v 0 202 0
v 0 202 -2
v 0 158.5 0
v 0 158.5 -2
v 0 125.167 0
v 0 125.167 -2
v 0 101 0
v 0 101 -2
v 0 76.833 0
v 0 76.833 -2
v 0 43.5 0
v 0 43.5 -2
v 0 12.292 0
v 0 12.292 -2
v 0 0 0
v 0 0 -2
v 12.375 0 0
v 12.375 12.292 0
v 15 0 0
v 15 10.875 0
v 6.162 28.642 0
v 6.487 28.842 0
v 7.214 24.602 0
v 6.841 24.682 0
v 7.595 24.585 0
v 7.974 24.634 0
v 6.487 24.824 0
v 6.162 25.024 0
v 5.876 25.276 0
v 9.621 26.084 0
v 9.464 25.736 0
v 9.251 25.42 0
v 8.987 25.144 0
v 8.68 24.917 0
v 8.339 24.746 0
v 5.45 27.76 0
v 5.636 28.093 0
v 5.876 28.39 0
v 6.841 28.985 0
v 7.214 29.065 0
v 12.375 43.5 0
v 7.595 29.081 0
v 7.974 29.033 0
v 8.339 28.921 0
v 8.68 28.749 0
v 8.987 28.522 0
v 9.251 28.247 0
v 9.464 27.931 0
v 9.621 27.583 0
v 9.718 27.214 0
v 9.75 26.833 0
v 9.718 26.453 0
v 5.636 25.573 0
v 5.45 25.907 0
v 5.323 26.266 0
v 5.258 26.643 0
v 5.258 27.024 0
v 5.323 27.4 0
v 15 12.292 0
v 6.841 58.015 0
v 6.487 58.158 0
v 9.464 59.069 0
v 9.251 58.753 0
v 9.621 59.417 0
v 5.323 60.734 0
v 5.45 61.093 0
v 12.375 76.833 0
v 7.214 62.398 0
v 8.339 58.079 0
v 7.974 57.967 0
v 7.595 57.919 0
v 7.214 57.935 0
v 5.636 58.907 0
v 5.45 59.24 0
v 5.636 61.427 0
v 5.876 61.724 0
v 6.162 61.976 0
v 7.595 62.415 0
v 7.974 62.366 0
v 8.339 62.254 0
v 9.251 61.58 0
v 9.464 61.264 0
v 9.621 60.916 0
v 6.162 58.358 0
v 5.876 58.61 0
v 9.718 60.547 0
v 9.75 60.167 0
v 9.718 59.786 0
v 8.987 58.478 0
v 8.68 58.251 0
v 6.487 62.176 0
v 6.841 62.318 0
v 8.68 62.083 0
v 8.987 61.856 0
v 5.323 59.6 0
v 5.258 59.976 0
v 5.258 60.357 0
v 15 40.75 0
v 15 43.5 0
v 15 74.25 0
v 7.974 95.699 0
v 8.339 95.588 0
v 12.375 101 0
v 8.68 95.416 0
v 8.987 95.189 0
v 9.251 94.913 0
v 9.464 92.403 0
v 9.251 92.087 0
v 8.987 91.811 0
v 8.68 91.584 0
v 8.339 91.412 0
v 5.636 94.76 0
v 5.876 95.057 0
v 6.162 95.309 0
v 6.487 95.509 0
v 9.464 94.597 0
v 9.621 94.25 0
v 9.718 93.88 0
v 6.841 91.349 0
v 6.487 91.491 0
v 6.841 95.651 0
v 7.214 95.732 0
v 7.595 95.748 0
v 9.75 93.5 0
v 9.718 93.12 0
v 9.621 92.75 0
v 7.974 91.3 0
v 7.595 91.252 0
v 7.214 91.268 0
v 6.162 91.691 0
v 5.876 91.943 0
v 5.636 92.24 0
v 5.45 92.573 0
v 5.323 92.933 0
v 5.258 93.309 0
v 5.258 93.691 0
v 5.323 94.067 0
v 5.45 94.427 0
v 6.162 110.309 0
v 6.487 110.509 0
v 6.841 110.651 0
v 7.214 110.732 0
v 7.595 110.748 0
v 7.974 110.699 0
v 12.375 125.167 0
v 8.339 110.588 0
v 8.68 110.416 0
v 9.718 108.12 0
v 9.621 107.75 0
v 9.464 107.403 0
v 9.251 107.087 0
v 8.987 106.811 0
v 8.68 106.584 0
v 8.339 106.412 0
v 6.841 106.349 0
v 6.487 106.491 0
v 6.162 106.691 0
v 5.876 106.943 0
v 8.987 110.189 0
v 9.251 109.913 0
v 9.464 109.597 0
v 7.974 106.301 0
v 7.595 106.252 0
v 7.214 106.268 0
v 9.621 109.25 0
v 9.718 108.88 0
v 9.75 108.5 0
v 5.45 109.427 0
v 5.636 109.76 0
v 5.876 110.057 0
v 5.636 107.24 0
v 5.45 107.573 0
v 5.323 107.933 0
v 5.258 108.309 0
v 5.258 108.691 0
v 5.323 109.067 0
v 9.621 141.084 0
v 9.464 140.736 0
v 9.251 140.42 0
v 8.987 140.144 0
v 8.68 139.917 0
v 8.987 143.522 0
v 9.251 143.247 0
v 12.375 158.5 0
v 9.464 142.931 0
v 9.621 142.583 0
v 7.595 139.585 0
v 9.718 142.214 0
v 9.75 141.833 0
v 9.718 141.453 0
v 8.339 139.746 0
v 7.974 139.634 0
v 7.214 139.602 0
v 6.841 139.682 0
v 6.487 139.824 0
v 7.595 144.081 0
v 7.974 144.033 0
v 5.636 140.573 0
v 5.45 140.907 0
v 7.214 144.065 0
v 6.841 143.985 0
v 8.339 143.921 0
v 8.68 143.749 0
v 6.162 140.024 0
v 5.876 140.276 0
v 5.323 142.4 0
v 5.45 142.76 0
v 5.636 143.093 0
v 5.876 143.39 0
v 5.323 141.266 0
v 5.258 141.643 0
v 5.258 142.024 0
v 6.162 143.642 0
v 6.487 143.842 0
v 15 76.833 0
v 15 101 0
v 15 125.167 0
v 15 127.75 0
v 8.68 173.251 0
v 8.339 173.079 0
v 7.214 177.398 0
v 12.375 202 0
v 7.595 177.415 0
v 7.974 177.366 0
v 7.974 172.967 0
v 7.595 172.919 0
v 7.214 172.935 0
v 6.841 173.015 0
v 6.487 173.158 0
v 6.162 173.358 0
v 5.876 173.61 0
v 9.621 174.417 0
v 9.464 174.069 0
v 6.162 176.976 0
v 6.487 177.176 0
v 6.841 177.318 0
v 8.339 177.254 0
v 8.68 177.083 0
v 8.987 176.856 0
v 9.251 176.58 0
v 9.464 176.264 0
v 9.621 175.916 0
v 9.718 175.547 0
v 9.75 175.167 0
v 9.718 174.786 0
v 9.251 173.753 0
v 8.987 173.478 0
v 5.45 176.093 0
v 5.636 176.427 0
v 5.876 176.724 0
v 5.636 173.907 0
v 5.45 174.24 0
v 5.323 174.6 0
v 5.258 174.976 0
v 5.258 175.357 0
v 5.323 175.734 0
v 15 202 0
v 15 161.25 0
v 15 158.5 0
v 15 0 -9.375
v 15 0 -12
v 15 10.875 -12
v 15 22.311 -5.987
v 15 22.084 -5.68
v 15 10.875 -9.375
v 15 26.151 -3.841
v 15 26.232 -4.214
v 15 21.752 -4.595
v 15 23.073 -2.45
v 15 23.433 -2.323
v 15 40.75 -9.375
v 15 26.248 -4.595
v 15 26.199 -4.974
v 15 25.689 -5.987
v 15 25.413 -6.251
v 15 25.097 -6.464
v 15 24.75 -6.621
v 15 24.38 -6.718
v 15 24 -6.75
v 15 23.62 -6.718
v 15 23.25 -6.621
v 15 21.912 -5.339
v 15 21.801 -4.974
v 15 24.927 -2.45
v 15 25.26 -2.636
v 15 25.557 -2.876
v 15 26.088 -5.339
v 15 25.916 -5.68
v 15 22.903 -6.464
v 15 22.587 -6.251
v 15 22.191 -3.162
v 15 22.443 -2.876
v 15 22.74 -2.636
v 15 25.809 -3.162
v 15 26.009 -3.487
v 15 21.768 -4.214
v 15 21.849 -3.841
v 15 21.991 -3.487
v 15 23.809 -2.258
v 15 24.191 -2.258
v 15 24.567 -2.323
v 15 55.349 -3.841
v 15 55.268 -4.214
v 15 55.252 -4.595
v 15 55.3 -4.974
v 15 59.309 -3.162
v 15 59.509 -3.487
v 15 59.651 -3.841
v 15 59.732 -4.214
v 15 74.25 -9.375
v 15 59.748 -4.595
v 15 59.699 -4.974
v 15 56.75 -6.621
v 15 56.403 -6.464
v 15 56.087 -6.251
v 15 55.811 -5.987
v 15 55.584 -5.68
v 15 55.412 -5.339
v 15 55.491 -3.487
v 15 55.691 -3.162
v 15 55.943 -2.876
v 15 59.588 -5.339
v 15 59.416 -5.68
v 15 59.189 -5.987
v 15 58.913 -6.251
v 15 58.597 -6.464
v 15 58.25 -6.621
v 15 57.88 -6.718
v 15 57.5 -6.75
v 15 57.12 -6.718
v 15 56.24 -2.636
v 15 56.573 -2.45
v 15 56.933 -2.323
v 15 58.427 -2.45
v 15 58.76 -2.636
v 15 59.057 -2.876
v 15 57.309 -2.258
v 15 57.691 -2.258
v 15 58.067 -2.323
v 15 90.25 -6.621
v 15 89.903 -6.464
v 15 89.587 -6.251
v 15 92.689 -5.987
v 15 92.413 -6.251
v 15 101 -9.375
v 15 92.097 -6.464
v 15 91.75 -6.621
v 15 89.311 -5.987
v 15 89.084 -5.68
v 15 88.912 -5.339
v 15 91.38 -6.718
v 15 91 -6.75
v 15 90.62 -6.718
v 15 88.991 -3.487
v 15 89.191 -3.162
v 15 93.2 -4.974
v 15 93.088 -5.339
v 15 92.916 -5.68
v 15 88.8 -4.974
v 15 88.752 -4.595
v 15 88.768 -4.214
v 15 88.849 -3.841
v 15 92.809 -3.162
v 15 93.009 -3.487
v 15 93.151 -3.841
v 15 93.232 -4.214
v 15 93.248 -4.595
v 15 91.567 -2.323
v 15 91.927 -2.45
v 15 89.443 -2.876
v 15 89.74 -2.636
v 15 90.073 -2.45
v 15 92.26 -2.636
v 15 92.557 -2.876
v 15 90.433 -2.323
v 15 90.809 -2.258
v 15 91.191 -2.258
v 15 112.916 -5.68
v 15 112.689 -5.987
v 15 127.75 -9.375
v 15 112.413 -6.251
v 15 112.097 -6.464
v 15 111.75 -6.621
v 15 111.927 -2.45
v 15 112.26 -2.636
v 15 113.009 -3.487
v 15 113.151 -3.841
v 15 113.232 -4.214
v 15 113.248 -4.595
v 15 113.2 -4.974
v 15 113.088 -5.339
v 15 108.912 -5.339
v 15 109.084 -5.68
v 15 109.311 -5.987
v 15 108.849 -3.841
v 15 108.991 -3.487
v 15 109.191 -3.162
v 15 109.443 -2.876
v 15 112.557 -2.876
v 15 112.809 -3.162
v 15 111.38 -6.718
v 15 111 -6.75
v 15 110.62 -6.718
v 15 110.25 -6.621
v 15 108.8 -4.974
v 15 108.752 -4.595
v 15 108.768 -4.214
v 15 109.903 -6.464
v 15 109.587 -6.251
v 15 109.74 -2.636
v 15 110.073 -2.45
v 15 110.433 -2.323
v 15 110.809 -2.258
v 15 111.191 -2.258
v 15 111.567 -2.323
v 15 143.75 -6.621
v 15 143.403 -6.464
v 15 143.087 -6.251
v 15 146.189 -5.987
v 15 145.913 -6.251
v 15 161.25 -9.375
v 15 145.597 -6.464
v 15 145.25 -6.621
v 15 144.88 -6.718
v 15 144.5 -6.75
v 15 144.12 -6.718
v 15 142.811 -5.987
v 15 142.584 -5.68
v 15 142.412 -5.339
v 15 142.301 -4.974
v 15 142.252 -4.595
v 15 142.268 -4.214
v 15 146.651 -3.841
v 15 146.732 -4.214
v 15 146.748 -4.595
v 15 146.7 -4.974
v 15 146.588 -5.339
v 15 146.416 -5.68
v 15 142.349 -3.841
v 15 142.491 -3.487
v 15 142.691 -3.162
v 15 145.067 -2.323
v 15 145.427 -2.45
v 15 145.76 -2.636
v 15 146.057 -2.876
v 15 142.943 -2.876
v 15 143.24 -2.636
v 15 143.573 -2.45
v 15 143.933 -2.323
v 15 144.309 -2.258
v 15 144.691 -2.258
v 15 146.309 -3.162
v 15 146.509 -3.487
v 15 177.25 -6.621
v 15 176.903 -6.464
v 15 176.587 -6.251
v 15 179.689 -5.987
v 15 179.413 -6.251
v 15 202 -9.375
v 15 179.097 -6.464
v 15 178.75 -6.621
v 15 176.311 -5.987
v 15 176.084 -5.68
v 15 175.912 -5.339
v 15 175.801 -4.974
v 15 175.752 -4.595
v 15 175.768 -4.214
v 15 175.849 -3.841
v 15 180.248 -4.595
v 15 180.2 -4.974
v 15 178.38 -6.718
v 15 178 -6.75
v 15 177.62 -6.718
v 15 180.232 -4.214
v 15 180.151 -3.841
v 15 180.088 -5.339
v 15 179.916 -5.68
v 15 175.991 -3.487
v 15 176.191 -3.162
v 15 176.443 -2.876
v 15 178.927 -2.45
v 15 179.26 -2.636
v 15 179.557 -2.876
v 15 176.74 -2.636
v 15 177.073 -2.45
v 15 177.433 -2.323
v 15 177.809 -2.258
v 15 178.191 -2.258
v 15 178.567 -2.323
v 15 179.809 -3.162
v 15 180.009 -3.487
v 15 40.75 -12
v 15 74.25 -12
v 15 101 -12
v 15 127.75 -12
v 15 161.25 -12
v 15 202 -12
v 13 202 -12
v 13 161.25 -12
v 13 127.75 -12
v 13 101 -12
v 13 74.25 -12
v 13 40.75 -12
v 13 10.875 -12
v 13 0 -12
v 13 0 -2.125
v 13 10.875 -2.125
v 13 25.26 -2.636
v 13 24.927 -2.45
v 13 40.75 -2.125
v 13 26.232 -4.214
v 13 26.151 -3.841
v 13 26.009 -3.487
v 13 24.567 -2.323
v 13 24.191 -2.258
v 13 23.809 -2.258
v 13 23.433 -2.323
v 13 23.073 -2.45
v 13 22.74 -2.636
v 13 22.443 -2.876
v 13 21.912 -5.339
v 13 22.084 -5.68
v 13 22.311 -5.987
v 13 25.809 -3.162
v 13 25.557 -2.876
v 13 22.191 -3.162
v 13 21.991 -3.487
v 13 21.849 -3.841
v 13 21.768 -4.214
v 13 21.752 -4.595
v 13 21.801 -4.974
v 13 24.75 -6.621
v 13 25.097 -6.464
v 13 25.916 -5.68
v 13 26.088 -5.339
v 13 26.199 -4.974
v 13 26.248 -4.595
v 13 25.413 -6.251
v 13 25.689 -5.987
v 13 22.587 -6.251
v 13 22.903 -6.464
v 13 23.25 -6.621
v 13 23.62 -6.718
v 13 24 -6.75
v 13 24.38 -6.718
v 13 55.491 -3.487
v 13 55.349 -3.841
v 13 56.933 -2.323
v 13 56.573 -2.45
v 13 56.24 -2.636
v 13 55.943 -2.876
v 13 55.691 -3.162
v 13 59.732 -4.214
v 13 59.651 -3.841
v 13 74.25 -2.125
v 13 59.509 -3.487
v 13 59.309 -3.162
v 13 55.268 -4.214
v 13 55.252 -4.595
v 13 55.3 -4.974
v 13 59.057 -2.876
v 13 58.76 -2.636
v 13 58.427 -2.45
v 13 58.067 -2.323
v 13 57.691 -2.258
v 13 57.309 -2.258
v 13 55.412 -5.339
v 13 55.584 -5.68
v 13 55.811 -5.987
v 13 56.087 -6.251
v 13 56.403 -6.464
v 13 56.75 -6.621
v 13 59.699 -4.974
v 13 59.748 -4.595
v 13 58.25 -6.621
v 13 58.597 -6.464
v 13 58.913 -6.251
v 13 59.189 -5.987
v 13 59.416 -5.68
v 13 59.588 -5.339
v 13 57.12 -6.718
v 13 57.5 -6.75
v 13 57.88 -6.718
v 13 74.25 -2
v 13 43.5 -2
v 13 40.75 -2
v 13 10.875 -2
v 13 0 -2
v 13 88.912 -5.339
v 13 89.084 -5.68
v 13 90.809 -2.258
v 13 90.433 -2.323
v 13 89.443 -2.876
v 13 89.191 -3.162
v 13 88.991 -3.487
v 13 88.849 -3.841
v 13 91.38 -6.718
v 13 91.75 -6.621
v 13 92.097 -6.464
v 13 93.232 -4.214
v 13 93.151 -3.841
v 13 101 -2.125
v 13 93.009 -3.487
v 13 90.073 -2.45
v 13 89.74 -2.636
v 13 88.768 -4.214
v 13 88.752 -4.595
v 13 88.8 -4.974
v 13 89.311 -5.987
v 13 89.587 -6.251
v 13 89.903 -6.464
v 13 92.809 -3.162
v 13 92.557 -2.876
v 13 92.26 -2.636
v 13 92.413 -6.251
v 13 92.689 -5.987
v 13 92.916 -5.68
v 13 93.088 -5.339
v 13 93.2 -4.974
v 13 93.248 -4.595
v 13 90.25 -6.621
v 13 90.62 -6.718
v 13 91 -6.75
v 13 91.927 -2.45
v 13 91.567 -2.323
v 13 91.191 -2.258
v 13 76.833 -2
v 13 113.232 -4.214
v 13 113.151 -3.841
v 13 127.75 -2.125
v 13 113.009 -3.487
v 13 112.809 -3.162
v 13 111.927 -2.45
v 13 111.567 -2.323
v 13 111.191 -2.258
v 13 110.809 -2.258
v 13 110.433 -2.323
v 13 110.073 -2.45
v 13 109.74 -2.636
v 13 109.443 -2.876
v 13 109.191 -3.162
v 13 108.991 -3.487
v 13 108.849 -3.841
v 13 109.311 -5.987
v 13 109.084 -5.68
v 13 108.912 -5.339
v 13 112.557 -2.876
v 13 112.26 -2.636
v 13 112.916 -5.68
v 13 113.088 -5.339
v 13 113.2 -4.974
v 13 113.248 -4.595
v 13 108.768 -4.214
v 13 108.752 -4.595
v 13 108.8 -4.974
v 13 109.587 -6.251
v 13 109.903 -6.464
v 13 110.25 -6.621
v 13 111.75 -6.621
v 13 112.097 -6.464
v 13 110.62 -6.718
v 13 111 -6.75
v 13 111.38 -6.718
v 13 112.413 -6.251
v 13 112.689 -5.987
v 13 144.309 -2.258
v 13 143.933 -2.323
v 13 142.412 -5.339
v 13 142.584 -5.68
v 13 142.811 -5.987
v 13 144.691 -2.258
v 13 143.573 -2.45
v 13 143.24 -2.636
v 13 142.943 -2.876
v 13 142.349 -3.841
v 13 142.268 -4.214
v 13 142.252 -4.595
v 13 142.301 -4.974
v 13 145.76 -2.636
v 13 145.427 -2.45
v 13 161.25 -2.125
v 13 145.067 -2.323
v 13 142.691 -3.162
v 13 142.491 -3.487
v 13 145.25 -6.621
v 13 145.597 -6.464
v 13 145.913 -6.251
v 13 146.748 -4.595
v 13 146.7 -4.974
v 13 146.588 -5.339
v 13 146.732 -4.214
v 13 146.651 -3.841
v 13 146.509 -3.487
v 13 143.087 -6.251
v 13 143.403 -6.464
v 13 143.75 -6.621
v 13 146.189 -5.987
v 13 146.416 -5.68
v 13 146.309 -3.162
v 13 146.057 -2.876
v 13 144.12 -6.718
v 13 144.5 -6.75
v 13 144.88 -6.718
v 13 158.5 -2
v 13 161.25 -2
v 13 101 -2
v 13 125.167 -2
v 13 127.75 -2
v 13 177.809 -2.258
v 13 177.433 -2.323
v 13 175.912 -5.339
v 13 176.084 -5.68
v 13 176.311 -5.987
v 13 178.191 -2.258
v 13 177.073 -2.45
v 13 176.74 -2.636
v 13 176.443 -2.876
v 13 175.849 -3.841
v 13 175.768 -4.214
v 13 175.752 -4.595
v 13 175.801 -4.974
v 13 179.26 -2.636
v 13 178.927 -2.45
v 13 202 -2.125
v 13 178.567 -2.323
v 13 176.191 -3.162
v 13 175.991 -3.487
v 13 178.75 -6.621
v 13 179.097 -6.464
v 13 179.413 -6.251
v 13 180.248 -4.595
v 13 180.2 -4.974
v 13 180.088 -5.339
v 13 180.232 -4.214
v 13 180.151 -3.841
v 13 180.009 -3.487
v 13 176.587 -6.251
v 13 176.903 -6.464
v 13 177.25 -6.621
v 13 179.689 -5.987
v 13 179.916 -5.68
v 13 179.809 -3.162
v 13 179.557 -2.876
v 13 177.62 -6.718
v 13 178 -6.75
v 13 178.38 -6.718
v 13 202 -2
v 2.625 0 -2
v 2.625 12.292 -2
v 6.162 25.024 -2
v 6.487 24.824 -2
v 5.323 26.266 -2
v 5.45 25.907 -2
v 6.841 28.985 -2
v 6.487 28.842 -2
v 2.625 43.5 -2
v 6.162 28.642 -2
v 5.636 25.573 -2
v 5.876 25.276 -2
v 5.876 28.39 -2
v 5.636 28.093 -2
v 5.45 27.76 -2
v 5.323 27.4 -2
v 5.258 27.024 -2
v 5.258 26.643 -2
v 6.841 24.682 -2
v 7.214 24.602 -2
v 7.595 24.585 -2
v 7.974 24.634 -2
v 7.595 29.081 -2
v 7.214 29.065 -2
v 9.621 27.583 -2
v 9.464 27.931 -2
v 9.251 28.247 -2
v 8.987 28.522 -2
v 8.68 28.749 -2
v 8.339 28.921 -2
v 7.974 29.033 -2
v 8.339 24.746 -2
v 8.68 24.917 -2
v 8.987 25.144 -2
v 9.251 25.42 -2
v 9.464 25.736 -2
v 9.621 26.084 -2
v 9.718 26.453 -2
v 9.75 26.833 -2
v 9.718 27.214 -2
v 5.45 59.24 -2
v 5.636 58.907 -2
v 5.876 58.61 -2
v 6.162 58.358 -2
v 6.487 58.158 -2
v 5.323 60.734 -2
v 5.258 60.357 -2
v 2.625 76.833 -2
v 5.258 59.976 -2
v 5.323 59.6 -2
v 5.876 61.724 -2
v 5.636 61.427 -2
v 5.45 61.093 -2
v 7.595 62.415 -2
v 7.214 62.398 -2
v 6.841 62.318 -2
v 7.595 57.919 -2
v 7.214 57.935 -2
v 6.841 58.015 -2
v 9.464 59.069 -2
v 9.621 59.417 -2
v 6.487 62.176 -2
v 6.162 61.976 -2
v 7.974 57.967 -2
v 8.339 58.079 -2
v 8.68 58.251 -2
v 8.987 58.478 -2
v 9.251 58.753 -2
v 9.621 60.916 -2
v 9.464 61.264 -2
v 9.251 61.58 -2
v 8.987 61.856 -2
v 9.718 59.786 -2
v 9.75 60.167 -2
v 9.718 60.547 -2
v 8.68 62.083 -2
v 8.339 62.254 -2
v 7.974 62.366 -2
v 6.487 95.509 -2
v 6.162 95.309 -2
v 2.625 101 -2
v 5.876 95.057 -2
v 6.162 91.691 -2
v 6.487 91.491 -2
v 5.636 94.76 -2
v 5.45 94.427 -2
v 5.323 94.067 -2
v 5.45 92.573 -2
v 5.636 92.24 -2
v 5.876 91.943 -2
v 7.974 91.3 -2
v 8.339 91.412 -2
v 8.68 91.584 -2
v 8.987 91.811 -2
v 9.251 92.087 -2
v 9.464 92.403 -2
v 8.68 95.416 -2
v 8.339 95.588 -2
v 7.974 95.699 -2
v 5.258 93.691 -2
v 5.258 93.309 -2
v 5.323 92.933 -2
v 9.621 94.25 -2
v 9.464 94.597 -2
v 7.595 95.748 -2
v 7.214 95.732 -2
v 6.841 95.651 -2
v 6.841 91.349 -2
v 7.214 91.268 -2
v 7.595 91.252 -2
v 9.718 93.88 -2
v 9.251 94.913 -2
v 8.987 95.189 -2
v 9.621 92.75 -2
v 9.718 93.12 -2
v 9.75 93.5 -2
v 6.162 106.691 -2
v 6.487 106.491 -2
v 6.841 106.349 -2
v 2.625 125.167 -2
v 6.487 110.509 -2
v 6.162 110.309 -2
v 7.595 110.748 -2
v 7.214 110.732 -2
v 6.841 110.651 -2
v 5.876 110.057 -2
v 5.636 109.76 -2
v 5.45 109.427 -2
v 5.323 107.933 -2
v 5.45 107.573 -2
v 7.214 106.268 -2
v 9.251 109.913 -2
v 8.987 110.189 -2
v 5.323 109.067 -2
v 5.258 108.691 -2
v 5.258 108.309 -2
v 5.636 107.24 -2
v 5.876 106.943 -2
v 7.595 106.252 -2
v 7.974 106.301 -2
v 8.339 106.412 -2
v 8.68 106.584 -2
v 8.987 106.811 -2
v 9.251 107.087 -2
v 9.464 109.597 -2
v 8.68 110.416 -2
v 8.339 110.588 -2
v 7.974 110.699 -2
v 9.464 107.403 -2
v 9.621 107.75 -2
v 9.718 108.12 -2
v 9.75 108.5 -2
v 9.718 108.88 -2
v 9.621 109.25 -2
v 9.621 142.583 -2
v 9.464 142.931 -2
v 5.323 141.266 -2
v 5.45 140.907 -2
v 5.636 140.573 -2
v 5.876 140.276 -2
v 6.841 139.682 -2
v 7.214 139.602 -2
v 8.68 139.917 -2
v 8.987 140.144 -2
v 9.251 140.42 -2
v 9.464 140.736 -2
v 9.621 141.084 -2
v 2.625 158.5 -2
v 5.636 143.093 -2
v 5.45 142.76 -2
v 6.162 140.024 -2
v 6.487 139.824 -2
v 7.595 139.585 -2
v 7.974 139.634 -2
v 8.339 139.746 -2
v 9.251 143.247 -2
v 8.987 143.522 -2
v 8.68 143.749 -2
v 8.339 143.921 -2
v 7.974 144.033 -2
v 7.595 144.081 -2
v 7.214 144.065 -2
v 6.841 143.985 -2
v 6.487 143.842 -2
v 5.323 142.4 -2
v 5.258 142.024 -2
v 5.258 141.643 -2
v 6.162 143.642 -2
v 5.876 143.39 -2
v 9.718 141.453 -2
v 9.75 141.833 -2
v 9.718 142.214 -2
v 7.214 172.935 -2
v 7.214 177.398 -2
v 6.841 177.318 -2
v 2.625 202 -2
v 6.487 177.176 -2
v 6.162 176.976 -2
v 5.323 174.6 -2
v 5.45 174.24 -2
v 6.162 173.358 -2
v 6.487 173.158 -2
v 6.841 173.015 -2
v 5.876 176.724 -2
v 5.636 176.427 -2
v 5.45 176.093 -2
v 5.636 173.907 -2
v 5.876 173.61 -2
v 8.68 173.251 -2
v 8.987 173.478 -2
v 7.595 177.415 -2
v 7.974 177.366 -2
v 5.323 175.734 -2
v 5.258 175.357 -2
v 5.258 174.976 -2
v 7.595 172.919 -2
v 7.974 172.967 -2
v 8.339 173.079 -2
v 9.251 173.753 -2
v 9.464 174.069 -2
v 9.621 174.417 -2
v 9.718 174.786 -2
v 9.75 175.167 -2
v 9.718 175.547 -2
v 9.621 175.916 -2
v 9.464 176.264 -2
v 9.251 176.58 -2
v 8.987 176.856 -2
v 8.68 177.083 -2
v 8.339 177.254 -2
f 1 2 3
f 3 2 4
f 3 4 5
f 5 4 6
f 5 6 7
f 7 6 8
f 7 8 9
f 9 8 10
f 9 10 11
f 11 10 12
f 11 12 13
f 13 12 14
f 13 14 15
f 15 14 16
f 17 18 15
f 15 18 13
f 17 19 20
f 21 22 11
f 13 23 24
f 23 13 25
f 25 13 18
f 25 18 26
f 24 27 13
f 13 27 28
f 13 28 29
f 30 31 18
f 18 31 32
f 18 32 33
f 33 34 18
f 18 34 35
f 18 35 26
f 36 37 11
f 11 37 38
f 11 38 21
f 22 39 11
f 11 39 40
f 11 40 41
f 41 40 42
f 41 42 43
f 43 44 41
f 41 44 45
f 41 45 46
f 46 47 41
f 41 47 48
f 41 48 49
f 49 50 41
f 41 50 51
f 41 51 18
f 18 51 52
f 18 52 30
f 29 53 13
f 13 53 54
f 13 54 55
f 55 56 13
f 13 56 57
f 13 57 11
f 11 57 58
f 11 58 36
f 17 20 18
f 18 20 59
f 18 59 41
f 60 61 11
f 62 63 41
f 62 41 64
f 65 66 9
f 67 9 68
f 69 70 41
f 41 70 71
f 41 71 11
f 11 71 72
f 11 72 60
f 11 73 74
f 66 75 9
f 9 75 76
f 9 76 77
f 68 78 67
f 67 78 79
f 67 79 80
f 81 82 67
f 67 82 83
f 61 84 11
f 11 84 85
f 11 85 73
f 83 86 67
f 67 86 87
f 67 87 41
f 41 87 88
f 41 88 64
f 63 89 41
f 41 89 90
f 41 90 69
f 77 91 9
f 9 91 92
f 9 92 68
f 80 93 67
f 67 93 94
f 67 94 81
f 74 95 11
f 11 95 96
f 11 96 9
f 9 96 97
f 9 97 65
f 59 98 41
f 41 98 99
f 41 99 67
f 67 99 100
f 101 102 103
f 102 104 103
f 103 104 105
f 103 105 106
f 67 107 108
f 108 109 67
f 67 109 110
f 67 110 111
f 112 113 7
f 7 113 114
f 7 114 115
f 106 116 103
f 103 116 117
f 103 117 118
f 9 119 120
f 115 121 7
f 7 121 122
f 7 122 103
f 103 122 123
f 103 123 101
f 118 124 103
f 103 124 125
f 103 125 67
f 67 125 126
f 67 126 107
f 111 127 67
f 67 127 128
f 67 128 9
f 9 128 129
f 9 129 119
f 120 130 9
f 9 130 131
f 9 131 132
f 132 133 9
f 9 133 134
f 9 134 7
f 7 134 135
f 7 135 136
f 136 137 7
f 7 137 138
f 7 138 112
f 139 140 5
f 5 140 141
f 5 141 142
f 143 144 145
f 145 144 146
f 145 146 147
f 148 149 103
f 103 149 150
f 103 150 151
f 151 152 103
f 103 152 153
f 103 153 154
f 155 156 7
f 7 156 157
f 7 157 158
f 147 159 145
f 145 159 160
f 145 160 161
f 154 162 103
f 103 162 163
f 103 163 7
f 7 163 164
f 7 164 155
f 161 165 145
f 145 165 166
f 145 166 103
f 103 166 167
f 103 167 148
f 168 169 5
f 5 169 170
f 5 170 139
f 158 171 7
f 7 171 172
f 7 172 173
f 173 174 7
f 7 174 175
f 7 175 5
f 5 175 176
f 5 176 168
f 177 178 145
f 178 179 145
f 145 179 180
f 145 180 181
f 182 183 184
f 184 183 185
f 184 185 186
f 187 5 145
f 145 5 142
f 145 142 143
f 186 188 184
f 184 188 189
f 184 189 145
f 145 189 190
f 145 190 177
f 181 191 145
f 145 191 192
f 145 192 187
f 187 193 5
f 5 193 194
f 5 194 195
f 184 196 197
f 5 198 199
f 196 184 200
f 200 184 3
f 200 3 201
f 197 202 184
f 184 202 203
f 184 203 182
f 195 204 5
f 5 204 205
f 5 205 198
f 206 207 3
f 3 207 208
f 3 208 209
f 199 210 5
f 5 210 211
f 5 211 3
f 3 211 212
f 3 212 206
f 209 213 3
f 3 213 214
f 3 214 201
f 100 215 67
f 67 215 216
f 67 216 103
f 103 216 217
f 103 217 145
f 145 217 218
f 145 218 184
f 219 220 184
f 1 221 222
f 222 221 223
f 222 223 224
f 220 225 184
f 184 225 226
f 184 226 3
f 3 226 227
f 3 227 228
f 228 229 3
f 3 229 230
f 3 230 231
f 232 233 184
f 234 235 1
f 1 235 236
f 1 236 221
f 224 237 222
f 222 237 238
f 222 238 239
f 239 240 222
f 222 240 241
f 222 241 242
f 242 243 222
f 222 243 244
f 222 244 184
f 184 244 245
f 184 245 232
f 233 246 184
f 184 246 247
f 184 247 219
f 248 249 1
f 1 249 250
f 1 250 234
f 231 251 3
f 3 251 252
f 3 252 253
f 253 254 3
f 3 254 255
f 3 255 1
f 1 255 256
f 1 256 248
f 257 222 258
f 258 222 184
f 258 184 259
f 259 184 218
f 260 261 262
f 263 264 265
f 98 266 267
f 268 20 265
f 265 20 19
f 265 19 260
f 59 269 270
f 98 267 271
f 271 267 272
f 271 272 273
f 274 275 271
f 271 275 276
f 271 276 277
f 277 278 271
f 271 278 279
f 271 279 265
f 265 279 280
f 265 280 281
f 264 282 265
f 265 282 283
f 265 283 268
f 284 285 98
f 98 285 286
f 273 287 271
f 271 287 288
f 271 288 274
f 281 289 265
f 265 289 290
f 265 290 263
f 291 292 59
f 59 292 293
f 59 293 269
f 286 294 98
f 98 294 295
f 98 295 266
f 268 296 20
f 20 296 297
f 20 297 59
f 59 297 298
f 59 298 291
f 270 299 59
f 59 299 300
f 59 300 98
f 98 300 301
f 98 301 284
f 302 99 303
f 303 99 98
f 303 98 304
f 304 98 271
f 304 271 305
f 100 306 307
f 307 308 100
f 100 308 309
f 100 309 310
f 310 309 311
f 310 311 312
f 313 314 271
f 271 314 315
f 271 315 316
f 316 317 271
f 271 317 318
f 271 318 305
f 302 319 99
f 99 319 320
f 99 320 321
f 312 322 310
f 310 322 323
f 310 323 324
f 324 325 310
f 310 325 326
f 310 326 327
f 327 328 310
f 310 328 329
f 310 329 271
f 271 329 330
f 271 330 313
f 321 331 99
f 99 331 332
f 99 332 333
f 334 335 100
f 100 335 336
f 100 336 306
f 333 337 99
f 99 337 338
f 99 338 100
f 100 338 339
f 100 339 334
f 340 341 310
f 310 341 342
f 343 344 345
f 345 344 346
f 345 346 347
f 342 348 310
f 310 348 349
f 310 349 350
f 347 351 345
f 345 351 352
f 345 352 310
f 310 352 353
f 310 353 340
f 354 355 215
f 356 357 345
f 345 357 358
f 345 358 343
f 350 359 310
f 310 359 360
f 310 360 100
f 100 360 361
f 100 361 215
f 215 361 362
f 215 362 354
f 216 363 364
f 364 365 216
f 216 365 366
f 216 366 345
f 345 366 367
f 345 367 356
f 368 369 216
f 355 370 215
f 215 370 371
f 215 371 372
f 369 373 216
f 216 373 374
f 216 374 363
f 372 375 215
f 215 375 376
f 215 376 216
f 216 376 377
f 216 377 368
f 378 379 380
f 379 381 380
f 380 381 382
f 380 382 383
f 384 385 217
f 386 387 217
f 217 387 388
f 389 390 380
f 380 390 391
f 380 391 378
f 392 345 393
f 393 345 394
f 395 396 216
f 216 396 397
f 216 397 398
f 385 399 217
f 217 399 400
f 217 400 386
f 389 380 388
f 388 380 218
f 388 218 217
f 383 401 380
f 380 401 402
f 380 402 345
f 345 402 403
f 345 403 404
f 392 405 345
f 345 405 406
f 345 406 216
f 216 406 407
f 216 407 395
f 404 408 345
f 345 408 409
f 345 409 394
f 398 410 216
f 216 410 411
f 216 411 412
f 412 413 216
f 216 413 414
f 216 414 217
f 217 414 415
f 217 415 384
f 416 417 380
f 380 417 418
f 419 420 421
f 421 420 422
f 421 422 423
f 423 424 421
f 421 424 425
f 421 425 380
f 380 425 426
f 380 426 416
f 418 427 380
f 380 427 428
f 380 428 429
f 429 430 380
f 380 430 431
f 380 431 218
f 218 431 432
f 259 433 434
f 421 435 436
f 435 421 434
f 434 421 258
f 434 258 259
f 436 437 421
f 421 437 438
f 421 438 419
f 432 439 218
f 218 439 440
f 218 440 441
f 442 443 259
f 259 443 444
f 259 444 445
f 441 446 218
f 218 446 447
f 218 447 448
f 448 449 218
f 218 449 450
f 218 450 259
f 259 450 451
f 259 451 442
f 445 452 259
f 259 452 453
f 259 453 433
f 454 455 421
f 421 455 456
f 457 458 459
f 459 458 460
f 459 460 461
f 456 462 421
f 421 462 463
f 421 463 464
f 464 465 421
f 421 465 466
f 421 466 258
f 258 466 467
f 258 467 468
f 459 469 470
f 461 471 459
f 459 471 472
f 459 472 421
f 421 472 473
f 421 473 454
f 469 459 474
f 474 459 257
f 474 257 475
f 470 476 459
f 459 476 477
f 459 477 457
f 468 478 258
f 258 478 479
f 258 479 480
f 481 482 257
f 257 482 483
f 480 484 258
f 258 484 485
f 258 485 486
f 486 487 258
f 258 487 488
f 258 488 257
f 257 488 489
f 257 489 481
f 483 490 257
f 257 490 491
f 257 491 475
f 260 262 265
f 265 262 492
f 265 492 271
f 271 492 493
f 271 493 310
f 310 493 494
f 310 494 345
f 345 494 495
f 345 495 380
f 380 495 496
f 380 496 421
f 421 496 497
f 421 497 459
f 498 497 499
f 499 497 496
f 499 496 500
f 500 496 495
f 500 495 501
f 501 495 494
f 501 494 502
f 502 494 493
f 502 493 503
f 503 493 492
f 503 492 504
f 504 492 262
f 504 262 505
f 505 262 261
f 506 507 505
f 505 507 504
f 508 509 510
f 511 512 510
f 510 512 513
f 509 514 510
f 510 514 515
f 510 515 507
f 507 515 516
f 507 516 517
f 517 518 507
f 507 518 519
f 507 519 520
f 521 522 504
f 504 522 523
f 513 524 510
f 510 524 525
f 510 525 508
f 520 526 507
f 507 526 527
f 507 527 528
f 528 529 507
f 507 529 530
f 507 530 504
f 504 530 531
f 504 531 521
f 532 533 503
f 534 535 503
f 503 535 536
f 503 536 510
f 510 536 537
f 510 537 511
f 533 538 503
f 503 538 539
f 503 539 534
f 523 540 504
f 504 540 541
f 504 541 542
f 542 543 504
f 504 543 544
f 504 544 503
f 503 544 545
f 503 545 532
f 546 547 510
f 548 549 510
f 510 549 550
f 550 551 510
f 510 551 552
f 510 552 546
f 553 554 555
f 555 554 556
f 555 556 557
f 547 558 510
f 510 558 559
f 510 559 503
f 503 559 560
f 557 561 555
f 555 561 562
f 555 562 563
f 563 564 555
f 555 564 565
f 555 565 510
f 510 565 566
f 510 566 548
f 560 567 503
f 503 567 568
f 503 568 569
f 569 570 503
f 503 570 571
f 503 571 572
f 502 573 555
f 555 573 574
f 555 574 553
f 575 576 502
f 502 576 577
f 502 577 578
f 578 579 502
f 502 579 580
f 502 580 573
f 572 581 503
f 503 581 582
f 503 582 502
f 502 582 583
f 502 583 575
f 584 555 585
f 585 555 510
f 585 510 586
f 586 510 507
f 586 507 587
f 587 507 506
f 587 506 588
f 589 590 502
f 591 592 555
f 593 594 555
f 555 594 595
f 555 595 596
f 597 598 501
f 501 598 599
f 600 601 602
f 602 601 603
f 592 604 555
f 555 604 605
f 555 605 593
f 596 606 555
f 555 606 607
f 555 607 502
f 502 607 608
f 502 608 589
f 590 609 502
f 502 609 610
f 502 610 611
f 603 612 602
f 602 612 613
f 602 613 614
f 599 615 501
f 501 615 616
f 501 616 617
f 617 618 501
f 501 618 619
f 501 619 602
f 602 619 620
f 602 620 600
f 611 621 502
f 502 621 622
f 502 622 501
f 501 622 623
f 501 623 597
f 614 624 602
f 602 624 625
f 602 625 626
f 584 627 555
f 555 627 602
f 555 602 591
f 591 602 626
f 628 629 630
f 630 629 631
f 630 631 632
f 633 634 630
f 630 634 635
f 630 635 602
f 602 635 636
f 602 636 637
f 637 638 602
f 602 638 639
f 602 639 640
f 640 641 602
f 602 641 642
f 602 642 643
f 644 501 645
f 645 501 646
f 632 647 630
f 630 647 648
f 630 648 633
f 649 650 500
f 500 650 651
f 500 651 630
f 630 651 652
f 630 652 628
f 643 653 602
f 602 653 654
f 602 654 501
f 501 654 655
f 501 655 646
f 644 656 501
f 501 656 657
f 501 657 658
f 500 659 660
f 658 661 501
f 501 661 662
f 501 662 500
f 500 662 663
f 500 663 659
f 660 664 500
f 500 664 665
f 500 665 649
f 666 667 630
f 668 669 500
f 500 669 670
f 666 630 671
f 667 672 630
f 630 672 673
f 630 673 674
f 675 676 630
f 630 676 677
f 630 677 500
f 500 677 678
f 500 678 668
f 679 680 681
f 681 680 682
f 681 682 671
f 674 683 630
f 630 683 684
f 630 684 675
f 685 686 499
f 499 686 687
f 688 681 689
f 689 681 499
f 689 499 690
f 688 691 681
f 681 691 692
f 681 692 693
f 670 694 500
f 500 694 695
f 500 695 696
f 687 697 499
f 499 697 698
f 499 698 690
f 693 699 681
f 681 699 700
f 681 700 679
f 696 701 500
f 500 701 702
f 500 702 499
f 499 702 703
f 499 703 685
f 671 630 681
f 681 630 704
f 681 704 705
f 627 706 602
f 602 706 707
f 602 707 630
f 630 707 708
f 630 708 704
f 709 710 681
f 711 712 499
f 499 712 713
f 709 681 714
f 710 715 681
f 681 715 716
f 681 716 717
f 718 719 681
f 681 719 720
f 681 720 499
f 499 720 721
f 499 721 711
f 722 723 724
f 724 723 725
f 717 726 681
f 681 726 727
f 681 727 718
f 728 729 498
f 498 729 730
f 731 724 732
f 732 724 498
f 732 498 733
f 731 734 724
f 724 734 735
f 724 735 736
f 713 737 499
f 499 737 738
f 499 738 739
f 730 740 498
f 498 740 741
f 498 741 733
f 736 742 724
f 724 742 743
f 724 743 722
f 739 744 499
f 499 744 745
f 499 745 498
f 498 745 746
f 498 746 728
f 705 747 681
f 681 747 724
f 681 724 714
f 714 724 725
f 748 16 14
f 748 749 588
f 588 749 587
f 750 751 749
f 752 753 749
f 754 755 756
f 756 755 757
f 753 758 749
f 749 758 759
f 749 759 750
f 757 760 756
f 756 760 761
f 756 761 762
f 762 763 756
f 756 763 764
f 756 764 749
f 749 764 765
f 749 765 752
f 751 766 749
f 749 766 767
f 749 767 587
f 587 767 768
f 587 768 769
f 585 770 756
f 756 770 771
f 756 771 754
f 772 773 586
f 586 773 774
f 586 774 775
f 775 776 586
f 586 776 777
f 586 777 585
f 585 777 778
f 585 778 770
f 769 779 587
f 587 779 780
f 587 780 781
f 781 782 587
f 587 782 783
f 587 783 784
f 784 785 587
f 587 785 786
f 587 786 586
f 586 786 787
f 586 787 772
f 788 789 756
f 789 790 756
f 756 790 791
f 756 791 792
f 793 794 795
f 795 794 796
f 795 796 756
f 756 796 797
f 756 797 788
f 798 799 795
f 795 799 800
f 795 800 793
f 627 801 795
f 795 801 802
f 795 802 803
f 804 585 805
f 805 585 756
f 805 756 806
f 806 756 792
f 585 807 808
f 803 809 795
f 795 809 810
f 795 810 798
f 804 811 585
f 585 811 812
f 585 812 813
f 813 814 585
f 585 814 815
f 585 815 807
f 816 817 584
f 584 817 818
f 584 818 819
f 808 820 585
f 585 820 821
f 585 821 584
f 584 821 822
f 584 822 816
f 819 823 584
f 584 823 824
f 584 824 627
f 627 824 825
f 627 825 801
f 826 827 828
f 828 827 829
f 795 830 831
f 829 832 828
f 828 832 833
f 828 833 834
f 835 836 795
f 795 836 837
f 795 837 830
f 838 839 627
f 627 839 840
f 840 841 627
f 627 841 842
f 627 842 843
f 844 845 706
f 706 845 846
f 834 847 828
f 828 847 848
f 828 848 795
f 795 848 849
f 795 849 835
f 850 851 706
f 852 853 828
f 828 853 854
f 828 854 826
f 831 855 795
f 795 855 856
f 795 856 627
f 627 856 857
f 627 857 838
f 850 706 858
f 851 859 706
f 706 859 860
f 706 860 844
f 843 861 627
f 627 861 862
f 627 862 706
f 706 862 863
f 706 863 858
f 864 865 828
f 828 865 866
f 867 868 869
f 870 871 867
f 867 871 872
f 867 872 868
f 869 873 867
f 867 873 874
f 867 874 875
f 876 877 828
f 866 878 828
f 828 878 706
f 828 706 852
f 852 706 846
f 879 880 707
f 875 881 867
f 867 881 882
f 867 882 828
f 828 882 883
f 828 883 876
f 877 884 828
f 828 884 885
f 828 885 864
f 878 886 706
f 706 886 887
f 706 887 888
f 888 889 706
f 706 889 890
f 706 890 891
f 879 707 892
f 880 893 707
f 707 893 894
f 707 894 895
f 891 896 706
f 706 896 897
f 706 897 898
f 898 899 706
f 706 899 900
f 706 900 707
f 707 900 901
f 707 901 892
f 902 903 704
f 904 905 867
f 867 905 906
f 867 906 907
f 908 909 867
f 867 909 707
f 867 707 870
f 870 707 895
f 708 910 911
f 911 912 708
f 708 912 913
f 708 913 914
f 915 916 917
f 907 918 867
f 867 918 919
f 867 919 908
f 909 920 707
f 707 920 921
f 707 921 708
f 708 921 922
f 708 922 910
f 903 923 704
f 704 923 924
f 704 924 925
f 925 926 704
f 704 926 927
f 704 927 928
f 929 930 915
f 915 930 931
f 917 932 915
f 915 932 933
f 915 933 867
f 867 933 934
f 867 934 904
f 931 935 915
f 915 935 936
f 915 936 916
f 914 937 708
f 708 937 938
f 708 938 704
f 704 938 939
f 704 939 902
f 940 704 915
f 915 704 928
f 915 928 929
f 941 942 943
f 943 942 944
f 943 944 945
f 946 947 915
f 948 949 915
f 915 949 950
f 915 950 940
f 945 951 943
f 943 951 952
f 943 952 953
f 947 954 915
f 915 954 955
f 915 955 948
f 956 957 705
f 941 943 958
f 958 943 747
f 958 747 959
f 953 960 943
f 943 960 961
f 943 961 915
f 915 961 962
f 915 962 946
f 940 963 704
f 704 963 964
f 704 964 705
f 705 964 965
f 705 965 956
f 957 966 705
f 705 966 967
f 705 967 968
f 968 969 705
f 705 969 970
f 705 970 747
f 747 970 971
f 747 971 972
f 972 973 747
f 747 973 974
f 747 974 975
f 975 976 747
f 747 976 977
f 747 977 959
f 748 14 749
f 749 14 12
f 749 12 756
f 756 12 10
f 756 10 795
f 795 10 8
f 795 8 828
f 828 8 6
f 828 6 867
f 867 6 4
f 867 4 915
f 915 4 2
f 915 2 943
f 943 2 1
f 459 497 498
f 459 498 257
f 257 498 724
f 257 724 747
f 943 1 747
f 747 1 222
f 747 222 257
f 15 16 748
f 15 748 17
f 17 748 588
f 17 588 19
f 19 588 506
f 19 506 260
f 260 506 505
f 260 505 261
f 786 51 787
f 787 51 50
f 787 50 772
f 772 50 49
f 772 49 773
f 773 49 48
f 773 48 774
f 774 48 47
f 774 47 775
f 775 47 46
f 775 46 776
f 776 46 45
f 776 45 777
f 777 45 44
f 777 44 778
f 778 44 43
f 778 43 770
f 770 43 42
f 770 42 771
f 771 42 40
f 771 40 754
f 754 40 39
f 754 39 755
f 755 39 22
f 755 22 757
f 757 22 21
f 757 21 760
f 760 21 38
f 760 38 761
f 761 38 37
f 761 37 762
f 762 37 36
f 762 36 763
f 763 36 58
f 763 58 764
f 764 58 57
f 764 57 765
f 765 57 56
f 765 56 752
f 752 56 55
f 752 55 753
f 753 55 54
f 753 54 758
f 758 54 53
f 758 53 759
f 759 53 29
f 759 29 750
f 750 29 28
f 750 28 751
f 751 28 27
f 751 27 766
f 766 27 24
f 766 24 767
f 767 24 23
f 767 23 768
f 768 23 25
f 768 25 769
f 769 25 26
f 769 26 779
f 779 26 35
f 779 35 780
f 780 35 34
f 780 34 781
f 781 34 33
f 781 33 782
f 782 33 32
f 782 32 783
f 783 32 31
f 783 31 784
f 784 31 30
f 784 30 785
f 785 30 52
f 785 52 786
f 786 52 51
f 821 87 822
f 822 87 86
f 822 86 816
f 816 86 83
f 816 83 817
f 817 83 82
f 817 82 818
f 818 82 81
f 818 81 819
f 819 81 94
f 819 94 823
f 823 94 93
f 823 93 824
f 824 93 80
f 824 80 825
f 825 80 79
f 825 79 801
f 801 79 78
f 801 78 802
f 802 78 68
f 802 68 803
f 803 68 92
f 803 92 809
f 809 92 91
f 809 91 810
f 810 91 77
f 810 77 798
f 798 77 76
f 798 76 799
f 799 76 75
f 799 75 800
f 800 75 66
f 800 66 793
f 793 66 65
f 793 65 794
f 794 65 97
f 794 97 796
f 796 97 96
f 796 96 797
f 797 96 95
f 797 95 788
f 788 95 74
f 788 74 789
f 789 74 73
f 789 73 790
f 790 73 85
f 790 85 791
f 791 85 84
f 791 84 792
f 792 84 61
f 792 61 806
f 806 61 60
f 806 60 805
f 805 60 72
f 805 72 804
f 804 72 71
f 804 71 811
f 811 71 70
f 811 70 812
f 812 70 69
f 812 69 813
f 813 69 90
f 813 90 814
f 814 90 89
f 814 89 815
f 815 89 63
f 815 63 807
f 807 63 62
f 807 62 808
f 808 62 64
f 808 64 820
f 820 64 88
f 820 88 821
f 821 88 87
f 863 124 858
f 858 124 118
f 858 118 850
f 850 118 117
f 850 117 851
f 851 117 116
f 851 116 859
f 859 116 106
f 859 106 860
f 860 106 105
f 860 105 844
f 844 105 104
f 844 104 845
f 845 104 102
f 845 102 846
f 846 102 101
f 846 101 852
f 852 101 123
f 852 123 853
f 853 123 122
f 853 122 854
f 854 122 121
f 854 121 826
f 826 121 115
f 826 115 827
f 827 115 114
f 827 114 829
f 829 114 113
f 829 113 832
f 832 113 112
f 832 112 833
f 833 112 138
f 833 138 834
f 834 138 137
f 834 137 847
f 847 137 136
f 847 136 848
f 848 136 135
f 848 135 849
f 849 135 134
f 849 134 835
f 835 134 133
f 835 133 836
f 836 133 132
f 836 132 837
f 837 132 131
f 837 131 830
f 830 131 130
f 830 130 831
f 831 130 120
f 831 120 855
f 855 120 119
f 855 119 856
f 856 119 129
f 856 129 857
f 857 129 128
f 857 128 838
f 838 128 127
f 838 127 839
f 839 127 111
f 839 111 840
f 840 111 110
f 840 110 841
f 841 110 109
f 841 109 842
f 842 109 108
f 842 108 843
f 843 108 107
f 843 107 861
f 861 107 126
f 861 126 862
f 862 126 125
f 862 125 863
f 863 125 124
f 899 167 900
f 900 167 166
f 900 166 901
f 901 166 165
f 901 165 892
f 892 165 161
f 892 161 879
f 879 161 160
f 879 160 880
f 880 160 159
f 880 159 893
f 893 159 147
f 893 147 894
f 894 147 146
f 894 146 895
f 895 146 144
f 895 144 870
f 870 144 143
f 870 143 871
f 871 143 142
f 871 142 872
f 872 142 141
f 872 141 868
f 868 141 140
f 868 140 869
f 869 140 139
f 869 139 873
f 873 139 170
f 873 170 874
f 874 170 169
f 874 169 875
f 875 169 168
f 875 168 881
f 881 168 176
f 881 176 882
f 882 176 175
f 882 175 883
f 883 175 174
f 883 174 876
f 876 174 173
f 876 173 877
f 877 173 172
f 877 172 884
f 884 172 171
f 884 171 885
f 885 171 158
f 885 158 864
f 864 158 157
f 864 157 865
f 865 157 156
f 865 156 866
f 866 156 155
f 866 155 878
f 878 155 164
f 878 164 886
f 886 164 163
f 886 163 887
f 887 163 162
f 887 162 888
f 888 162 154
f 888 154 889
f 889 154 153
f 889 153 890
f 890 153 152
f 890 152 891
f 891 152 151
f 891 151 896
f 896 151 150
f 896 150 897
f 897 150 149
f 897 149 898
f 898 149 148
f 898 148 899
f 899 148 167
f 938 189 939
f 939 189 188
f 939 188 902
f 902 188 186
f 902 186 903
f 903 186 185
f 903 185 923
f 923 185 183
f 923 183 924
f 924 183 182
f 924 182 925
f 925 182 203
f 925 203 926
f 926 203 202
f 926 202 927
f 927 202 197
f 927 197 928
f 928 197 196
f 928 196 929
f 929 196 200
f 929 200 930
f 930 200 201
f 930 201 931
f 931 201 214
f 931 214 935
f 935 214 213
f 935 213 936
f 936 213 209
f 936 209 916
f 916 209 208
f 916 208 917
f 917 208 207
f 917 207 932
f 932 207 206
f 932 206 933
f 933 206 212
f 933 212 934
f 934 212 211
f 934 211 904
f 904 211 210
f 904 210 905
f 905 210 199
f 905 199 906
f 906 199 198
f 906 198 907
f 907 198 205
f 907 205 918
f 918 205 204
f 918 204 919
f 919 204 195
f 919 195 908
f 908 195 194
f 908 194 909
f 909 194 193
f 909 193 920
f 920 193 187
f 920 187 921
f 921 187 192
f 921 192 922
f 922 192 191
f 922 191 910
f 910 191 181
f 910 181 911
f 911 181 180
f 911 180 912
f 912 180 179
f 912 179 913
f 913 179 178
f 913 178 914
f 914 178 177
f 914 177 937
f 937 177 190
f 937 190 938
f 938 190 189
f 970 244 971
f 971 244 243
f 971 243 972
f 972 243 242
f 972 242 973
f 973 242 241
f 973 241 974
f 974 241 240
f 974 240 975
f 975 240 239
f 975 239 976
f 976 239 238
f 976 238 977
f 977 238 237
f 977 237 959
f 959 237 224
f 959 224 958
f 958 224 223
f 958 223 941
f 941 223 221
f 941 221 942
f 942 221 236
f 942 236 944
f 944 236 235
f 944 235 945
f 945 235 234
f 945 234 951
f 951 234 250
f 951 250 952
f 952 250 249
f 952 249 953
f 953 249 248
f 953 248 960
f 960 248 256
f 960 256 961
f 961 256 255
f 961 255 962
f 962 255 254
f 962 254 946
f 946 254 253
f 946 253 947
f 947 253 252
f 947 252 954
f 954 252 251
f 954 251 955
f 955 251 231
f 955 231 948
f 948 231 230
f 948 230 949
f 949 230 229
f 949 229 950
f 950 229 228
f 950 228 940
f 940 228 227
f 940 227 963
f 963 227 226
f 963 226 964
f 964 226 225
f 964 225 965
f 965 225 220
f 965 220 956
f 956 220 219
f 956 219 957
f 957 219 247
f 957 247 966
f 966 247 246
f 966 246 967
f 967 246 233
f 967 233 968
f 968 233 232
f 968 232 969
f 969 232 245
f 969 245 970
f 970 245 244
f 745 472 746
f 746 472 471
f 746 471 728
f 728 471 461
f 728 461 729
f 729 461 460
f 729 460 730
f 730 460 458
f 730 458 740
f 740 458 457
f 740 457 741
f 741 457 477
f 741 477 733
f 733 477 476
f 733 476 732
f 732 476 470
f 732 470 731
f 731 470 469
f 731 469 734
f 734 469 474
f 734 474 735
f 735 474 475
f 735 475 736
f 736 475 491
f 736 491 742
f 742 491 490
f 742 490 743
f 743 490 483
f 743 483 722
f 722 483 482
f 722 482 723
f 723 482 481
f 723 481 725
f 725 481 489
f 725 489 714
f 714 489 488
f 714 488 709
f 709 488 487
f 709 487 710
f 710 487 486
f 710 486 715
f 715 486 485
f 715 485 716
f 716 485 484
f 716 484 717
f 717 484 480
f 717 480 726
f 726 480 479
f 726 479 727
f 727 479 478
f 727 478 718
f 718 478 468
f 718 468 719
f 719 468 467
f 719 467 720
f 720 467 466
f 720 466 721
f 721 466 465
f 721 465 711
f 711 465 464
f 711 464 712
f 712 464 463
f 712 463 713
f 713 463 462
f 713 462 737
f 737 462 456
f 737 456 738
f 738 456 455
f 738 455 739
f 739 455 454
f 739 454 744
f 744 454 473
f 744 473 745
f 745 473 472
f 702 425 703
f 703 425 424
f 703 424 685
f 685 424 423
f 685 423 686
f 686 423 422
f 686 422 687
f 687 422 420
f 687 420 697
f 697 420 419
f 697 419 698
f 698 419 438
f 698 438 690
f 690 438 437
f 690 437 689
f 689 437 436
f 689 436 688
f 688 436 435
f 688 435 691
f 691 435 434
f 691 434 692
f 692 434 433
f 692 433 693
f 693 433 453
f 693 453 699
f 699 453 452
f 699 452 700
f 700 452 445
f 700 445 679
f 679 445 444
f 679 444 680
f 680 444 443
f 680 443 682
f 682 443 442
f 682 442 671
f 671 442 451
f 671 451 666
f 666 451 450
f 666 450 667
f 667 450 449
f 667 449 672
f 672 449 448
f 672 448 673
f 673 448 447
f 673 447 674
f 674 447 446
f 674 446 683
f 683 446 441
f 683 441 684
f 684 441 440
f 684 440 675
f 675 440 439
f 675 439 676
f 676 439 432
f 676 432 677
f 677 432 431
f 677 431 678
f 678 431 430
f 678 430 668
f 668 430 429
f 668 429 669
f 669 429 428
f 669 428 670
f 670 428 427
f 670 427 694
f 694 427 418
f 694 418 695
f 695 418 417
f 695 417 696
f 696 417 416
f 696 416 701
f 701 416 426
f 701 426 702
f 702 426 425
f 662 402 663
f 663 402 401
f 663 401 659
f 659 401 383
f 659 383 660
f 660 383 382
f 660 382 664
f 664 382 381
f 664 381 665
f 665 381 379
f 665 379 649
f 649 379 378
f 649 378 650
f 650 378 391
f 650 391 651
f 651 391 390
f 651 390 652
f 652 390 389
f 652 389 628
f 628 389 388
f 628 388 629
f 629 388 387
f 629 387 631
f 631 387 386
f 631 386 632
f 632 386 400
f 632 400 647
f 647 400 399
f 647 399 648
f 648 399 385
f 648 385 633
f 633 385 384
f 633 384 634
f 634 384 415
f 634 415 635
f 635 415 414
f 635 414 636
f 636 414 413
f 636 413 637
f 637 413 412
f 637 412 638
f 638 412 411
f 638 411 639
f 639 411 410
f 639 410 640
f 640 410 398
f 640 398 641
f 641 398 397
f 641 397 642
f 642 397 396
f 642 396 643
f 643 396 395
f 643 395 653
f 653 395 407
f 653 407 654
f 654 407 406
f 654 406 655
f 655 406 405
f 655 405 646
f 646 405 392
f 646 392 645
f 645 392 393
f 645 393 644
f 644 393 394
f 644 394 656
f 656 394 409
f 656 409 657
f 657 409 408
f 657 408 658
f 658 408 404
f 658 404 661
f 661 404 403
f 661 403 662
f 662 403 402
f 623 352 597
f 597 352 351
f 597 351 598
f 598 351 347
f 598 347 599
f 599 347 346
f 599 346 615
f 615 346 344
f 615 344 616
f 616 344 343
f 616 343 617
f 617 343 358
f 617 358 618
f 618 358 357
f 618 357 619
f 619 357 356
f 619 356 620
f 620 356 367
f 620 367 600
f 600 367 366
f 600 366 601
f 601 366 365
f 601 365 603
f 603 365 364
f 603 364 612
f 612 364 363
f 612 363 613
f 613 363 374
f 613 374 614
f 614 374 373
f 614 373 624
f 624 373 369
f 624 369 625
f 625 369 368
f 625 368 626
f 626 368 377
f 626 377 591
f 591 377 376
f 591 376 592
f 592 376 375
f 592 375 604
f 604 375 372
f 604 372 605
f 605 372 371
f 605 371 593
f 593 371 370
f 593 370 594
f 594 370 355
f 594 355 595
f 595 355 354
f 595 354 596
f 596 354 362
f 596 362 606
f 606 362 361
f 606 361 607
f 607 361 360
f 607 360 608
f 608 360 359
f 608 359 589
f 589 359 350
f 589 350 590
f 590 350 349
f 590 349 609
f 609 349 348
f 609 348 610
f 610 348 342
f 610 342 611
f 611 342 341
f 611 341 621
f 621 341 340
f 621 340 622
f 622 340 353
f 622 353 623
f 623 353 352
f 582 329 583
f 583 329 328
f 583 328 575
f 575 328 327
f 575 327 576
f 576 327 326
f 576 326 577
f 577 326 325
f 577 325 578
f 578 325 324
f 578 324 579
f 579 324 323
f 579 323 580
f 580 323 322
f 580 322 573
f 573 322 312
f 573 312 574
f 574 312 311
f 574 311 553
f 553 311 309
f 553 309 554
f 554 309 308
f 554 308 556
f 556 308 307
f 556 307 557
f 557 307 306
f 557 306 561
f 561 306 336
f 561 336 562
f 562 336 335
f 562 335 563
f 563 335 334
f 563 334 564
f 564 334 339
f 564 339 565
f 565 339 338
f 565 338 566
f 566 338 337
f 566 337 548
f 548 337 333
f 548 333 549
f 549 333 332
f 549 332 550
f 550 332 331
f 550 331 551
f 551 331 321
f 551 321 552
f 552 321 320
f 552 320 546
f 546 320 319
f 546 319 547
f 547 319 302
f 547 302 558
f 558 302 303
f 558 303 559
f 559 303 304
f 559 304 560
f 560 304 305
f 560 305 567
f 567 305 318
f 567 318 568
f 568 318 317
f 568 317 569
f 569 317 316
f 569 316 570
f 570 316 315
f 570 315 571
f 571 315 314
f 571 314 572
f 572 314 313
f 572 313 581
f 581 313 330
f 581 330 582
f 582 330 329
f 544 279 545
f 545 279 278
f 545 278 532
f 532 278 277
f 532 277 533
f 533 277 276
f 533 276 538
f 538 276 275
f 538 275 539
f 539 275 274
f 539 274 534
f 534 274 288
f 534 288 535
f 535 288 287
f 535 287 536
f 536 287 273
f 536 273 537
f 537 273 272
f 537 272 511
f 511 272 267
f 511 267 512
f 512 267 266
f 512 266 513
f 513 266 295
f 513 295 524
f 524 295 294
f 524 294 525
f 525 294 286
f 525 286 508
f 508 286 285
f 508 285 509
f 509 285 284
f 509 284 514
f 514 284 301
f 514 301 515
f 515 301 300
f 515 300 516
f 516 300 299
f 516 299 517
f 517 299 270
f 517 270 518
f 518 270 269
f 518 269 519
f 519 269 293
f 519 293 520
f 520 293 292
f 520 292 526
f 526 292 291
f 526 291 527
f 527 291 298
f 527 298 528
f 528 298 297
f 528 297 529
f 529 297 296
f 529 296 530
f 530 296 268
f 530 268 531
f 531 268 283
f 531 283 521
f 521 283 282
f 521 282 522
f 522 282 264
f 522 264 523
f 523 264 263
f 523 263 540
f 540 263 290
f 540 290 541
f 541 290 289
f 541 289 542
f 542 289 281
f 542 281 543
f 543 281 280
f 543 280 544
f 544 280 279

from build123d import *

# Parameters (mm, degrees)
BOSS_EXTRUDE1_DEPTH = 202
CUT_EXTRUDE1_REACH  = 14
SKETCH2_R           = 2.25
CUT_EXTRUDE2_REACH  = 17
SKETCH3_R           = 2.25


with BuildPart() as part:
    # Sketch1 → Boss-Extrude1 (new body)
    with BuildSketch(Plane(origin=(0, 0, 0), x_dir=(1, 0, 0), z_dir=(0, 1, 0))):
        Polygon((0, 0), (15, 0), (15, 12), (13, 12), (13, 2), (0, 2), align=None)
    extrude(amount=BOSS_EXTRUDE1_DEPTH)

    # Sketch2 → Cut-Extrude1 (cut, up to next)
    with BuildSketch(Plane.XY, mode=Mode.PRIVATE) as cut_extrude1_sk1:
        with Locations((7.5, 175.166666667)):
            Circle(SKETCH2_R)
    cut_extrude1_tool1 = extrude(cut_extrude1_sk1.sketch, amount=-CUT_EXTRUDE1_REACH, mode=Mode.PRIVATE) & part.part
    add(cut_extrude1_tool1.solids().sort_by_distance((7.5, 175.166667, 0))[0], mode=Mode.SUBTRACT)
    # Sketch2 → Cut-Extrude1 (cut, up to next)
    with BuildSketch(Plane.XY, mode=Mode.PRIVATE) as cut_extrude1_sk2:
        with Locations((7.5, 141.833333333)):
            Circle(SKETCH2_R)
    cut_extrude1_tool2 = extrude(cut_extrude1_sk2.sketch, amount=-CUT_EXTRUDE1_REACH, mode=Mode.PRIVATE) & part.part
    add(cut_extrude1_tool2.solids().sort_by_distance((7.5, 141.833333, 0))[0], mode=Mode.SUBTRACT)
    # Sketch2 → Cut-Extrude1 (cut, up to next)
    with BuildSketch(Plane.XY, mode=Mode.PRIVATE) as cut_extrude1_sk3:
        with Locations((7.5, 108.5)):
            Circle(SKETCH2_R)
    cut_extrude1_tool3 = extrude(cut_extrude1_sk3.sketch, amount=-CUT_EXTRUDE1_REACH, mode=Mode.PRIVATE) & part.part
    add(cut_extrude1_tool3.solids().sort_by_distance((7.5, 108.5, 0))[0], mode=Mode.SUBTRACT)
    # Sketch2 → Cut-Extrude1 (cut, up to next)
    with BuildSketch(Plane.XY, mode=Mode.PRIVATE) as cut_extrude1_sk4:
        with Locations((7.5, 93.5)):
            Circle(SKETCH2_R)
    cut_extrude1_tool4 = extrude(cut_extrude1_sk4.sketch, amount=-CUT_EXTRUDE1_REACH, mode=Mode.PRIVATE) & part.part
    add(cut_extrude1_tool4.solids().sort_by_distance((7.5, 93.5, 0))[0], mode=Mode.SUBTRACT)
    # Sketch2 → Cut-Extrude1 (cut, up to next)
    with BuildSketch(Plane.XY, mode=Mode.PRIVATE) as cut_extrude1_sk5:
        with Locations((7.5, 60.166666667)):
            Circle(SKETCH2_R)
    cut_extrude1_tool5 = extrude(cut_extrude1_sk5.sketch, amount=-CUT_EXTRUDE1_REACH, mode=Mode.PRIVATE) & part.part
    add(cut_extrude1_tool5.solids().sort_by_distance((7.5, 60.166667, 0))[0], mode=Mode.SUBTRACT)
    # Sketch2 → Cut-Extrude1 (cut, up to next)
    with BuildSketch(Plane.XY, mode=Mode.PRIVATE) as cut_extrude1_sk6:
        with Locations((7.5, 26.833333333)):
            Circle(SKETCH2_R)
    cut_extrude1_tool6 = extrude(cut_extrude1_sk6.sketch, amount=-CUT_EXTRUDE1_REACH, mode=Mode.PRIVATE) & part.part
    add(cut_extrude1_tool6.solids().sort_by_distance((7.5, 26.833333, 0))[0], mode=Mode.SUBTRACT)

    # Sketch3 → Cut-Extrude2 (cut, up to next)
    with BuildSketch(Plane(origin=(15, 0, 0), x_dir=(0, 0, -1), z_dir=(1, 0, 0)), mode=Mode.PRIVATE) as cut_extrude2_sk1:
        with Locations((4.5, 24)):
            Circle(SKETCH3_R)
    cut_extrude2_tool1 = extrude(cut_extrude2_sk1.sketch, amount=-CUT_EXTRUDE2_REACH, mode=Mode.PRIVATE) & part.part
    add(cut_extrude2_tool1.solids().sort_by_distance((15, 24, -4.5))[0], mode=Mode.SUBTRACT)
    # Sketch3 → Cut-Extrude2 (cut, up to next)
    with BuildSketch(Plane(origin=(15, 0, 0), x_dir=(0, 0, -1), z_dir=(1, 0, 0)), mode=Mode.PRIVATE) as cut_extrude2_sk2:
        with Locations((4.5, 57.5)):
            Circle(SKETCH3_R)
    cut_extrude2_tool2 = extrude(cut_extrude2_sk2.sketch, amount=-CUT_EXTRUDE2_REACH, mode=Mode.PRIVATE) & part.part
    add(cut_extrude2_tool2.solids().sort_by_distance((15, 57.5, -4.5))[0], mode=Mode.SUBTRACT)
    # Sketch3 → Cut-Extrude2 (cut, up to next)
    with BuildSketch(Plane(origin=(15, 0, 0), x_dir=(0, 0, -1), z_dir=(1, 0, 0)), mode=Mode.PRIVATE) as cut_extrude2_sk3:
        with Locations((4.5, 91)):
            Circle(SKETCH3_R)
    cut_extrude2_tool3 = extrude(cut_extrude2_sk3.sketch, amount=-CUT_EXTRUDE2_REACH, mode=Mode.PRIVATE) & part.part
    add(cut_extrude2_tool3.solids().sort_by_distance((15, 91, -4.5))[0], mode=Mode.SUBTRACT)
    # Sketch3 → Cut-Extrude2 (cut, up to next)
    with BuildSketch(Plane(origin=(15, 0, 0), x_dir=(0, 0, -1), z_dir=(1, 0, 0)), mode=Mode.PRIVATE) as cut_extrude2_sk4:
        with Locations((4.5, 111)):
            Circle(SKETCH3_R)
    cut_extrude2_tool4 = extrude(cut_extrude2_sk4.sketch, amount=-CUT_EXTRUDE2_REACH, mode=Mode.PRIVATE) & part.part
    add(cut_extrude2_tool4.solids().sort_by_distance((15, 111, -4.5))[0], mode=Mode.SUBTRACT)
    # Sketch3 → Cut-Extrude2 (cut, up to next)
    with BuildSketch(Plane(origin=(15, 0, 0), x_dir=(0, 0, -1), z_dir=(1, 0, 0)), mode=Mode.PRIVATE) as cut_extrude2_sk5:
        with Locations((4.5, 144.5)):
            Circle(SKETCH3_R)
    cut_extrude2_tool5 = extrude(cut_extrude2_sk5.sketch, amount=-CUT_EXTRUDE2_REACH, mode=Mode.PRIVATE) & part.part
    add(cut_extrude2_tool5.solids().sort_by_distance((15, 144.5, -4.5))[0], mode=Mode.SUBTRACT)
    # Sketch3 → Cut-Extrude2 (cut, up to next)
    with BuildSketch(Plane(origin=(15, 0, 0), x_dir=(0, 0, -1), z_dir=(1, 0, 0)), mode=Mode.PRIVATE) as cut_extrude2_sk6:
        with Locations((4.5, 178)):
            Circle(SKETCH3_R)
    cut_extrude2_tool6 = extrude(cut_extrude2_sk6.sketch, amount=-CUT_EXTRUDE2_REACH, mode=Mode.PRIVATE) & part.part
    add(cut_extrude2_tool6.solids().sort_by_distance((15, 178, -4.5))[0], mode=Mode.SUBTRACT)


solid = part.part
